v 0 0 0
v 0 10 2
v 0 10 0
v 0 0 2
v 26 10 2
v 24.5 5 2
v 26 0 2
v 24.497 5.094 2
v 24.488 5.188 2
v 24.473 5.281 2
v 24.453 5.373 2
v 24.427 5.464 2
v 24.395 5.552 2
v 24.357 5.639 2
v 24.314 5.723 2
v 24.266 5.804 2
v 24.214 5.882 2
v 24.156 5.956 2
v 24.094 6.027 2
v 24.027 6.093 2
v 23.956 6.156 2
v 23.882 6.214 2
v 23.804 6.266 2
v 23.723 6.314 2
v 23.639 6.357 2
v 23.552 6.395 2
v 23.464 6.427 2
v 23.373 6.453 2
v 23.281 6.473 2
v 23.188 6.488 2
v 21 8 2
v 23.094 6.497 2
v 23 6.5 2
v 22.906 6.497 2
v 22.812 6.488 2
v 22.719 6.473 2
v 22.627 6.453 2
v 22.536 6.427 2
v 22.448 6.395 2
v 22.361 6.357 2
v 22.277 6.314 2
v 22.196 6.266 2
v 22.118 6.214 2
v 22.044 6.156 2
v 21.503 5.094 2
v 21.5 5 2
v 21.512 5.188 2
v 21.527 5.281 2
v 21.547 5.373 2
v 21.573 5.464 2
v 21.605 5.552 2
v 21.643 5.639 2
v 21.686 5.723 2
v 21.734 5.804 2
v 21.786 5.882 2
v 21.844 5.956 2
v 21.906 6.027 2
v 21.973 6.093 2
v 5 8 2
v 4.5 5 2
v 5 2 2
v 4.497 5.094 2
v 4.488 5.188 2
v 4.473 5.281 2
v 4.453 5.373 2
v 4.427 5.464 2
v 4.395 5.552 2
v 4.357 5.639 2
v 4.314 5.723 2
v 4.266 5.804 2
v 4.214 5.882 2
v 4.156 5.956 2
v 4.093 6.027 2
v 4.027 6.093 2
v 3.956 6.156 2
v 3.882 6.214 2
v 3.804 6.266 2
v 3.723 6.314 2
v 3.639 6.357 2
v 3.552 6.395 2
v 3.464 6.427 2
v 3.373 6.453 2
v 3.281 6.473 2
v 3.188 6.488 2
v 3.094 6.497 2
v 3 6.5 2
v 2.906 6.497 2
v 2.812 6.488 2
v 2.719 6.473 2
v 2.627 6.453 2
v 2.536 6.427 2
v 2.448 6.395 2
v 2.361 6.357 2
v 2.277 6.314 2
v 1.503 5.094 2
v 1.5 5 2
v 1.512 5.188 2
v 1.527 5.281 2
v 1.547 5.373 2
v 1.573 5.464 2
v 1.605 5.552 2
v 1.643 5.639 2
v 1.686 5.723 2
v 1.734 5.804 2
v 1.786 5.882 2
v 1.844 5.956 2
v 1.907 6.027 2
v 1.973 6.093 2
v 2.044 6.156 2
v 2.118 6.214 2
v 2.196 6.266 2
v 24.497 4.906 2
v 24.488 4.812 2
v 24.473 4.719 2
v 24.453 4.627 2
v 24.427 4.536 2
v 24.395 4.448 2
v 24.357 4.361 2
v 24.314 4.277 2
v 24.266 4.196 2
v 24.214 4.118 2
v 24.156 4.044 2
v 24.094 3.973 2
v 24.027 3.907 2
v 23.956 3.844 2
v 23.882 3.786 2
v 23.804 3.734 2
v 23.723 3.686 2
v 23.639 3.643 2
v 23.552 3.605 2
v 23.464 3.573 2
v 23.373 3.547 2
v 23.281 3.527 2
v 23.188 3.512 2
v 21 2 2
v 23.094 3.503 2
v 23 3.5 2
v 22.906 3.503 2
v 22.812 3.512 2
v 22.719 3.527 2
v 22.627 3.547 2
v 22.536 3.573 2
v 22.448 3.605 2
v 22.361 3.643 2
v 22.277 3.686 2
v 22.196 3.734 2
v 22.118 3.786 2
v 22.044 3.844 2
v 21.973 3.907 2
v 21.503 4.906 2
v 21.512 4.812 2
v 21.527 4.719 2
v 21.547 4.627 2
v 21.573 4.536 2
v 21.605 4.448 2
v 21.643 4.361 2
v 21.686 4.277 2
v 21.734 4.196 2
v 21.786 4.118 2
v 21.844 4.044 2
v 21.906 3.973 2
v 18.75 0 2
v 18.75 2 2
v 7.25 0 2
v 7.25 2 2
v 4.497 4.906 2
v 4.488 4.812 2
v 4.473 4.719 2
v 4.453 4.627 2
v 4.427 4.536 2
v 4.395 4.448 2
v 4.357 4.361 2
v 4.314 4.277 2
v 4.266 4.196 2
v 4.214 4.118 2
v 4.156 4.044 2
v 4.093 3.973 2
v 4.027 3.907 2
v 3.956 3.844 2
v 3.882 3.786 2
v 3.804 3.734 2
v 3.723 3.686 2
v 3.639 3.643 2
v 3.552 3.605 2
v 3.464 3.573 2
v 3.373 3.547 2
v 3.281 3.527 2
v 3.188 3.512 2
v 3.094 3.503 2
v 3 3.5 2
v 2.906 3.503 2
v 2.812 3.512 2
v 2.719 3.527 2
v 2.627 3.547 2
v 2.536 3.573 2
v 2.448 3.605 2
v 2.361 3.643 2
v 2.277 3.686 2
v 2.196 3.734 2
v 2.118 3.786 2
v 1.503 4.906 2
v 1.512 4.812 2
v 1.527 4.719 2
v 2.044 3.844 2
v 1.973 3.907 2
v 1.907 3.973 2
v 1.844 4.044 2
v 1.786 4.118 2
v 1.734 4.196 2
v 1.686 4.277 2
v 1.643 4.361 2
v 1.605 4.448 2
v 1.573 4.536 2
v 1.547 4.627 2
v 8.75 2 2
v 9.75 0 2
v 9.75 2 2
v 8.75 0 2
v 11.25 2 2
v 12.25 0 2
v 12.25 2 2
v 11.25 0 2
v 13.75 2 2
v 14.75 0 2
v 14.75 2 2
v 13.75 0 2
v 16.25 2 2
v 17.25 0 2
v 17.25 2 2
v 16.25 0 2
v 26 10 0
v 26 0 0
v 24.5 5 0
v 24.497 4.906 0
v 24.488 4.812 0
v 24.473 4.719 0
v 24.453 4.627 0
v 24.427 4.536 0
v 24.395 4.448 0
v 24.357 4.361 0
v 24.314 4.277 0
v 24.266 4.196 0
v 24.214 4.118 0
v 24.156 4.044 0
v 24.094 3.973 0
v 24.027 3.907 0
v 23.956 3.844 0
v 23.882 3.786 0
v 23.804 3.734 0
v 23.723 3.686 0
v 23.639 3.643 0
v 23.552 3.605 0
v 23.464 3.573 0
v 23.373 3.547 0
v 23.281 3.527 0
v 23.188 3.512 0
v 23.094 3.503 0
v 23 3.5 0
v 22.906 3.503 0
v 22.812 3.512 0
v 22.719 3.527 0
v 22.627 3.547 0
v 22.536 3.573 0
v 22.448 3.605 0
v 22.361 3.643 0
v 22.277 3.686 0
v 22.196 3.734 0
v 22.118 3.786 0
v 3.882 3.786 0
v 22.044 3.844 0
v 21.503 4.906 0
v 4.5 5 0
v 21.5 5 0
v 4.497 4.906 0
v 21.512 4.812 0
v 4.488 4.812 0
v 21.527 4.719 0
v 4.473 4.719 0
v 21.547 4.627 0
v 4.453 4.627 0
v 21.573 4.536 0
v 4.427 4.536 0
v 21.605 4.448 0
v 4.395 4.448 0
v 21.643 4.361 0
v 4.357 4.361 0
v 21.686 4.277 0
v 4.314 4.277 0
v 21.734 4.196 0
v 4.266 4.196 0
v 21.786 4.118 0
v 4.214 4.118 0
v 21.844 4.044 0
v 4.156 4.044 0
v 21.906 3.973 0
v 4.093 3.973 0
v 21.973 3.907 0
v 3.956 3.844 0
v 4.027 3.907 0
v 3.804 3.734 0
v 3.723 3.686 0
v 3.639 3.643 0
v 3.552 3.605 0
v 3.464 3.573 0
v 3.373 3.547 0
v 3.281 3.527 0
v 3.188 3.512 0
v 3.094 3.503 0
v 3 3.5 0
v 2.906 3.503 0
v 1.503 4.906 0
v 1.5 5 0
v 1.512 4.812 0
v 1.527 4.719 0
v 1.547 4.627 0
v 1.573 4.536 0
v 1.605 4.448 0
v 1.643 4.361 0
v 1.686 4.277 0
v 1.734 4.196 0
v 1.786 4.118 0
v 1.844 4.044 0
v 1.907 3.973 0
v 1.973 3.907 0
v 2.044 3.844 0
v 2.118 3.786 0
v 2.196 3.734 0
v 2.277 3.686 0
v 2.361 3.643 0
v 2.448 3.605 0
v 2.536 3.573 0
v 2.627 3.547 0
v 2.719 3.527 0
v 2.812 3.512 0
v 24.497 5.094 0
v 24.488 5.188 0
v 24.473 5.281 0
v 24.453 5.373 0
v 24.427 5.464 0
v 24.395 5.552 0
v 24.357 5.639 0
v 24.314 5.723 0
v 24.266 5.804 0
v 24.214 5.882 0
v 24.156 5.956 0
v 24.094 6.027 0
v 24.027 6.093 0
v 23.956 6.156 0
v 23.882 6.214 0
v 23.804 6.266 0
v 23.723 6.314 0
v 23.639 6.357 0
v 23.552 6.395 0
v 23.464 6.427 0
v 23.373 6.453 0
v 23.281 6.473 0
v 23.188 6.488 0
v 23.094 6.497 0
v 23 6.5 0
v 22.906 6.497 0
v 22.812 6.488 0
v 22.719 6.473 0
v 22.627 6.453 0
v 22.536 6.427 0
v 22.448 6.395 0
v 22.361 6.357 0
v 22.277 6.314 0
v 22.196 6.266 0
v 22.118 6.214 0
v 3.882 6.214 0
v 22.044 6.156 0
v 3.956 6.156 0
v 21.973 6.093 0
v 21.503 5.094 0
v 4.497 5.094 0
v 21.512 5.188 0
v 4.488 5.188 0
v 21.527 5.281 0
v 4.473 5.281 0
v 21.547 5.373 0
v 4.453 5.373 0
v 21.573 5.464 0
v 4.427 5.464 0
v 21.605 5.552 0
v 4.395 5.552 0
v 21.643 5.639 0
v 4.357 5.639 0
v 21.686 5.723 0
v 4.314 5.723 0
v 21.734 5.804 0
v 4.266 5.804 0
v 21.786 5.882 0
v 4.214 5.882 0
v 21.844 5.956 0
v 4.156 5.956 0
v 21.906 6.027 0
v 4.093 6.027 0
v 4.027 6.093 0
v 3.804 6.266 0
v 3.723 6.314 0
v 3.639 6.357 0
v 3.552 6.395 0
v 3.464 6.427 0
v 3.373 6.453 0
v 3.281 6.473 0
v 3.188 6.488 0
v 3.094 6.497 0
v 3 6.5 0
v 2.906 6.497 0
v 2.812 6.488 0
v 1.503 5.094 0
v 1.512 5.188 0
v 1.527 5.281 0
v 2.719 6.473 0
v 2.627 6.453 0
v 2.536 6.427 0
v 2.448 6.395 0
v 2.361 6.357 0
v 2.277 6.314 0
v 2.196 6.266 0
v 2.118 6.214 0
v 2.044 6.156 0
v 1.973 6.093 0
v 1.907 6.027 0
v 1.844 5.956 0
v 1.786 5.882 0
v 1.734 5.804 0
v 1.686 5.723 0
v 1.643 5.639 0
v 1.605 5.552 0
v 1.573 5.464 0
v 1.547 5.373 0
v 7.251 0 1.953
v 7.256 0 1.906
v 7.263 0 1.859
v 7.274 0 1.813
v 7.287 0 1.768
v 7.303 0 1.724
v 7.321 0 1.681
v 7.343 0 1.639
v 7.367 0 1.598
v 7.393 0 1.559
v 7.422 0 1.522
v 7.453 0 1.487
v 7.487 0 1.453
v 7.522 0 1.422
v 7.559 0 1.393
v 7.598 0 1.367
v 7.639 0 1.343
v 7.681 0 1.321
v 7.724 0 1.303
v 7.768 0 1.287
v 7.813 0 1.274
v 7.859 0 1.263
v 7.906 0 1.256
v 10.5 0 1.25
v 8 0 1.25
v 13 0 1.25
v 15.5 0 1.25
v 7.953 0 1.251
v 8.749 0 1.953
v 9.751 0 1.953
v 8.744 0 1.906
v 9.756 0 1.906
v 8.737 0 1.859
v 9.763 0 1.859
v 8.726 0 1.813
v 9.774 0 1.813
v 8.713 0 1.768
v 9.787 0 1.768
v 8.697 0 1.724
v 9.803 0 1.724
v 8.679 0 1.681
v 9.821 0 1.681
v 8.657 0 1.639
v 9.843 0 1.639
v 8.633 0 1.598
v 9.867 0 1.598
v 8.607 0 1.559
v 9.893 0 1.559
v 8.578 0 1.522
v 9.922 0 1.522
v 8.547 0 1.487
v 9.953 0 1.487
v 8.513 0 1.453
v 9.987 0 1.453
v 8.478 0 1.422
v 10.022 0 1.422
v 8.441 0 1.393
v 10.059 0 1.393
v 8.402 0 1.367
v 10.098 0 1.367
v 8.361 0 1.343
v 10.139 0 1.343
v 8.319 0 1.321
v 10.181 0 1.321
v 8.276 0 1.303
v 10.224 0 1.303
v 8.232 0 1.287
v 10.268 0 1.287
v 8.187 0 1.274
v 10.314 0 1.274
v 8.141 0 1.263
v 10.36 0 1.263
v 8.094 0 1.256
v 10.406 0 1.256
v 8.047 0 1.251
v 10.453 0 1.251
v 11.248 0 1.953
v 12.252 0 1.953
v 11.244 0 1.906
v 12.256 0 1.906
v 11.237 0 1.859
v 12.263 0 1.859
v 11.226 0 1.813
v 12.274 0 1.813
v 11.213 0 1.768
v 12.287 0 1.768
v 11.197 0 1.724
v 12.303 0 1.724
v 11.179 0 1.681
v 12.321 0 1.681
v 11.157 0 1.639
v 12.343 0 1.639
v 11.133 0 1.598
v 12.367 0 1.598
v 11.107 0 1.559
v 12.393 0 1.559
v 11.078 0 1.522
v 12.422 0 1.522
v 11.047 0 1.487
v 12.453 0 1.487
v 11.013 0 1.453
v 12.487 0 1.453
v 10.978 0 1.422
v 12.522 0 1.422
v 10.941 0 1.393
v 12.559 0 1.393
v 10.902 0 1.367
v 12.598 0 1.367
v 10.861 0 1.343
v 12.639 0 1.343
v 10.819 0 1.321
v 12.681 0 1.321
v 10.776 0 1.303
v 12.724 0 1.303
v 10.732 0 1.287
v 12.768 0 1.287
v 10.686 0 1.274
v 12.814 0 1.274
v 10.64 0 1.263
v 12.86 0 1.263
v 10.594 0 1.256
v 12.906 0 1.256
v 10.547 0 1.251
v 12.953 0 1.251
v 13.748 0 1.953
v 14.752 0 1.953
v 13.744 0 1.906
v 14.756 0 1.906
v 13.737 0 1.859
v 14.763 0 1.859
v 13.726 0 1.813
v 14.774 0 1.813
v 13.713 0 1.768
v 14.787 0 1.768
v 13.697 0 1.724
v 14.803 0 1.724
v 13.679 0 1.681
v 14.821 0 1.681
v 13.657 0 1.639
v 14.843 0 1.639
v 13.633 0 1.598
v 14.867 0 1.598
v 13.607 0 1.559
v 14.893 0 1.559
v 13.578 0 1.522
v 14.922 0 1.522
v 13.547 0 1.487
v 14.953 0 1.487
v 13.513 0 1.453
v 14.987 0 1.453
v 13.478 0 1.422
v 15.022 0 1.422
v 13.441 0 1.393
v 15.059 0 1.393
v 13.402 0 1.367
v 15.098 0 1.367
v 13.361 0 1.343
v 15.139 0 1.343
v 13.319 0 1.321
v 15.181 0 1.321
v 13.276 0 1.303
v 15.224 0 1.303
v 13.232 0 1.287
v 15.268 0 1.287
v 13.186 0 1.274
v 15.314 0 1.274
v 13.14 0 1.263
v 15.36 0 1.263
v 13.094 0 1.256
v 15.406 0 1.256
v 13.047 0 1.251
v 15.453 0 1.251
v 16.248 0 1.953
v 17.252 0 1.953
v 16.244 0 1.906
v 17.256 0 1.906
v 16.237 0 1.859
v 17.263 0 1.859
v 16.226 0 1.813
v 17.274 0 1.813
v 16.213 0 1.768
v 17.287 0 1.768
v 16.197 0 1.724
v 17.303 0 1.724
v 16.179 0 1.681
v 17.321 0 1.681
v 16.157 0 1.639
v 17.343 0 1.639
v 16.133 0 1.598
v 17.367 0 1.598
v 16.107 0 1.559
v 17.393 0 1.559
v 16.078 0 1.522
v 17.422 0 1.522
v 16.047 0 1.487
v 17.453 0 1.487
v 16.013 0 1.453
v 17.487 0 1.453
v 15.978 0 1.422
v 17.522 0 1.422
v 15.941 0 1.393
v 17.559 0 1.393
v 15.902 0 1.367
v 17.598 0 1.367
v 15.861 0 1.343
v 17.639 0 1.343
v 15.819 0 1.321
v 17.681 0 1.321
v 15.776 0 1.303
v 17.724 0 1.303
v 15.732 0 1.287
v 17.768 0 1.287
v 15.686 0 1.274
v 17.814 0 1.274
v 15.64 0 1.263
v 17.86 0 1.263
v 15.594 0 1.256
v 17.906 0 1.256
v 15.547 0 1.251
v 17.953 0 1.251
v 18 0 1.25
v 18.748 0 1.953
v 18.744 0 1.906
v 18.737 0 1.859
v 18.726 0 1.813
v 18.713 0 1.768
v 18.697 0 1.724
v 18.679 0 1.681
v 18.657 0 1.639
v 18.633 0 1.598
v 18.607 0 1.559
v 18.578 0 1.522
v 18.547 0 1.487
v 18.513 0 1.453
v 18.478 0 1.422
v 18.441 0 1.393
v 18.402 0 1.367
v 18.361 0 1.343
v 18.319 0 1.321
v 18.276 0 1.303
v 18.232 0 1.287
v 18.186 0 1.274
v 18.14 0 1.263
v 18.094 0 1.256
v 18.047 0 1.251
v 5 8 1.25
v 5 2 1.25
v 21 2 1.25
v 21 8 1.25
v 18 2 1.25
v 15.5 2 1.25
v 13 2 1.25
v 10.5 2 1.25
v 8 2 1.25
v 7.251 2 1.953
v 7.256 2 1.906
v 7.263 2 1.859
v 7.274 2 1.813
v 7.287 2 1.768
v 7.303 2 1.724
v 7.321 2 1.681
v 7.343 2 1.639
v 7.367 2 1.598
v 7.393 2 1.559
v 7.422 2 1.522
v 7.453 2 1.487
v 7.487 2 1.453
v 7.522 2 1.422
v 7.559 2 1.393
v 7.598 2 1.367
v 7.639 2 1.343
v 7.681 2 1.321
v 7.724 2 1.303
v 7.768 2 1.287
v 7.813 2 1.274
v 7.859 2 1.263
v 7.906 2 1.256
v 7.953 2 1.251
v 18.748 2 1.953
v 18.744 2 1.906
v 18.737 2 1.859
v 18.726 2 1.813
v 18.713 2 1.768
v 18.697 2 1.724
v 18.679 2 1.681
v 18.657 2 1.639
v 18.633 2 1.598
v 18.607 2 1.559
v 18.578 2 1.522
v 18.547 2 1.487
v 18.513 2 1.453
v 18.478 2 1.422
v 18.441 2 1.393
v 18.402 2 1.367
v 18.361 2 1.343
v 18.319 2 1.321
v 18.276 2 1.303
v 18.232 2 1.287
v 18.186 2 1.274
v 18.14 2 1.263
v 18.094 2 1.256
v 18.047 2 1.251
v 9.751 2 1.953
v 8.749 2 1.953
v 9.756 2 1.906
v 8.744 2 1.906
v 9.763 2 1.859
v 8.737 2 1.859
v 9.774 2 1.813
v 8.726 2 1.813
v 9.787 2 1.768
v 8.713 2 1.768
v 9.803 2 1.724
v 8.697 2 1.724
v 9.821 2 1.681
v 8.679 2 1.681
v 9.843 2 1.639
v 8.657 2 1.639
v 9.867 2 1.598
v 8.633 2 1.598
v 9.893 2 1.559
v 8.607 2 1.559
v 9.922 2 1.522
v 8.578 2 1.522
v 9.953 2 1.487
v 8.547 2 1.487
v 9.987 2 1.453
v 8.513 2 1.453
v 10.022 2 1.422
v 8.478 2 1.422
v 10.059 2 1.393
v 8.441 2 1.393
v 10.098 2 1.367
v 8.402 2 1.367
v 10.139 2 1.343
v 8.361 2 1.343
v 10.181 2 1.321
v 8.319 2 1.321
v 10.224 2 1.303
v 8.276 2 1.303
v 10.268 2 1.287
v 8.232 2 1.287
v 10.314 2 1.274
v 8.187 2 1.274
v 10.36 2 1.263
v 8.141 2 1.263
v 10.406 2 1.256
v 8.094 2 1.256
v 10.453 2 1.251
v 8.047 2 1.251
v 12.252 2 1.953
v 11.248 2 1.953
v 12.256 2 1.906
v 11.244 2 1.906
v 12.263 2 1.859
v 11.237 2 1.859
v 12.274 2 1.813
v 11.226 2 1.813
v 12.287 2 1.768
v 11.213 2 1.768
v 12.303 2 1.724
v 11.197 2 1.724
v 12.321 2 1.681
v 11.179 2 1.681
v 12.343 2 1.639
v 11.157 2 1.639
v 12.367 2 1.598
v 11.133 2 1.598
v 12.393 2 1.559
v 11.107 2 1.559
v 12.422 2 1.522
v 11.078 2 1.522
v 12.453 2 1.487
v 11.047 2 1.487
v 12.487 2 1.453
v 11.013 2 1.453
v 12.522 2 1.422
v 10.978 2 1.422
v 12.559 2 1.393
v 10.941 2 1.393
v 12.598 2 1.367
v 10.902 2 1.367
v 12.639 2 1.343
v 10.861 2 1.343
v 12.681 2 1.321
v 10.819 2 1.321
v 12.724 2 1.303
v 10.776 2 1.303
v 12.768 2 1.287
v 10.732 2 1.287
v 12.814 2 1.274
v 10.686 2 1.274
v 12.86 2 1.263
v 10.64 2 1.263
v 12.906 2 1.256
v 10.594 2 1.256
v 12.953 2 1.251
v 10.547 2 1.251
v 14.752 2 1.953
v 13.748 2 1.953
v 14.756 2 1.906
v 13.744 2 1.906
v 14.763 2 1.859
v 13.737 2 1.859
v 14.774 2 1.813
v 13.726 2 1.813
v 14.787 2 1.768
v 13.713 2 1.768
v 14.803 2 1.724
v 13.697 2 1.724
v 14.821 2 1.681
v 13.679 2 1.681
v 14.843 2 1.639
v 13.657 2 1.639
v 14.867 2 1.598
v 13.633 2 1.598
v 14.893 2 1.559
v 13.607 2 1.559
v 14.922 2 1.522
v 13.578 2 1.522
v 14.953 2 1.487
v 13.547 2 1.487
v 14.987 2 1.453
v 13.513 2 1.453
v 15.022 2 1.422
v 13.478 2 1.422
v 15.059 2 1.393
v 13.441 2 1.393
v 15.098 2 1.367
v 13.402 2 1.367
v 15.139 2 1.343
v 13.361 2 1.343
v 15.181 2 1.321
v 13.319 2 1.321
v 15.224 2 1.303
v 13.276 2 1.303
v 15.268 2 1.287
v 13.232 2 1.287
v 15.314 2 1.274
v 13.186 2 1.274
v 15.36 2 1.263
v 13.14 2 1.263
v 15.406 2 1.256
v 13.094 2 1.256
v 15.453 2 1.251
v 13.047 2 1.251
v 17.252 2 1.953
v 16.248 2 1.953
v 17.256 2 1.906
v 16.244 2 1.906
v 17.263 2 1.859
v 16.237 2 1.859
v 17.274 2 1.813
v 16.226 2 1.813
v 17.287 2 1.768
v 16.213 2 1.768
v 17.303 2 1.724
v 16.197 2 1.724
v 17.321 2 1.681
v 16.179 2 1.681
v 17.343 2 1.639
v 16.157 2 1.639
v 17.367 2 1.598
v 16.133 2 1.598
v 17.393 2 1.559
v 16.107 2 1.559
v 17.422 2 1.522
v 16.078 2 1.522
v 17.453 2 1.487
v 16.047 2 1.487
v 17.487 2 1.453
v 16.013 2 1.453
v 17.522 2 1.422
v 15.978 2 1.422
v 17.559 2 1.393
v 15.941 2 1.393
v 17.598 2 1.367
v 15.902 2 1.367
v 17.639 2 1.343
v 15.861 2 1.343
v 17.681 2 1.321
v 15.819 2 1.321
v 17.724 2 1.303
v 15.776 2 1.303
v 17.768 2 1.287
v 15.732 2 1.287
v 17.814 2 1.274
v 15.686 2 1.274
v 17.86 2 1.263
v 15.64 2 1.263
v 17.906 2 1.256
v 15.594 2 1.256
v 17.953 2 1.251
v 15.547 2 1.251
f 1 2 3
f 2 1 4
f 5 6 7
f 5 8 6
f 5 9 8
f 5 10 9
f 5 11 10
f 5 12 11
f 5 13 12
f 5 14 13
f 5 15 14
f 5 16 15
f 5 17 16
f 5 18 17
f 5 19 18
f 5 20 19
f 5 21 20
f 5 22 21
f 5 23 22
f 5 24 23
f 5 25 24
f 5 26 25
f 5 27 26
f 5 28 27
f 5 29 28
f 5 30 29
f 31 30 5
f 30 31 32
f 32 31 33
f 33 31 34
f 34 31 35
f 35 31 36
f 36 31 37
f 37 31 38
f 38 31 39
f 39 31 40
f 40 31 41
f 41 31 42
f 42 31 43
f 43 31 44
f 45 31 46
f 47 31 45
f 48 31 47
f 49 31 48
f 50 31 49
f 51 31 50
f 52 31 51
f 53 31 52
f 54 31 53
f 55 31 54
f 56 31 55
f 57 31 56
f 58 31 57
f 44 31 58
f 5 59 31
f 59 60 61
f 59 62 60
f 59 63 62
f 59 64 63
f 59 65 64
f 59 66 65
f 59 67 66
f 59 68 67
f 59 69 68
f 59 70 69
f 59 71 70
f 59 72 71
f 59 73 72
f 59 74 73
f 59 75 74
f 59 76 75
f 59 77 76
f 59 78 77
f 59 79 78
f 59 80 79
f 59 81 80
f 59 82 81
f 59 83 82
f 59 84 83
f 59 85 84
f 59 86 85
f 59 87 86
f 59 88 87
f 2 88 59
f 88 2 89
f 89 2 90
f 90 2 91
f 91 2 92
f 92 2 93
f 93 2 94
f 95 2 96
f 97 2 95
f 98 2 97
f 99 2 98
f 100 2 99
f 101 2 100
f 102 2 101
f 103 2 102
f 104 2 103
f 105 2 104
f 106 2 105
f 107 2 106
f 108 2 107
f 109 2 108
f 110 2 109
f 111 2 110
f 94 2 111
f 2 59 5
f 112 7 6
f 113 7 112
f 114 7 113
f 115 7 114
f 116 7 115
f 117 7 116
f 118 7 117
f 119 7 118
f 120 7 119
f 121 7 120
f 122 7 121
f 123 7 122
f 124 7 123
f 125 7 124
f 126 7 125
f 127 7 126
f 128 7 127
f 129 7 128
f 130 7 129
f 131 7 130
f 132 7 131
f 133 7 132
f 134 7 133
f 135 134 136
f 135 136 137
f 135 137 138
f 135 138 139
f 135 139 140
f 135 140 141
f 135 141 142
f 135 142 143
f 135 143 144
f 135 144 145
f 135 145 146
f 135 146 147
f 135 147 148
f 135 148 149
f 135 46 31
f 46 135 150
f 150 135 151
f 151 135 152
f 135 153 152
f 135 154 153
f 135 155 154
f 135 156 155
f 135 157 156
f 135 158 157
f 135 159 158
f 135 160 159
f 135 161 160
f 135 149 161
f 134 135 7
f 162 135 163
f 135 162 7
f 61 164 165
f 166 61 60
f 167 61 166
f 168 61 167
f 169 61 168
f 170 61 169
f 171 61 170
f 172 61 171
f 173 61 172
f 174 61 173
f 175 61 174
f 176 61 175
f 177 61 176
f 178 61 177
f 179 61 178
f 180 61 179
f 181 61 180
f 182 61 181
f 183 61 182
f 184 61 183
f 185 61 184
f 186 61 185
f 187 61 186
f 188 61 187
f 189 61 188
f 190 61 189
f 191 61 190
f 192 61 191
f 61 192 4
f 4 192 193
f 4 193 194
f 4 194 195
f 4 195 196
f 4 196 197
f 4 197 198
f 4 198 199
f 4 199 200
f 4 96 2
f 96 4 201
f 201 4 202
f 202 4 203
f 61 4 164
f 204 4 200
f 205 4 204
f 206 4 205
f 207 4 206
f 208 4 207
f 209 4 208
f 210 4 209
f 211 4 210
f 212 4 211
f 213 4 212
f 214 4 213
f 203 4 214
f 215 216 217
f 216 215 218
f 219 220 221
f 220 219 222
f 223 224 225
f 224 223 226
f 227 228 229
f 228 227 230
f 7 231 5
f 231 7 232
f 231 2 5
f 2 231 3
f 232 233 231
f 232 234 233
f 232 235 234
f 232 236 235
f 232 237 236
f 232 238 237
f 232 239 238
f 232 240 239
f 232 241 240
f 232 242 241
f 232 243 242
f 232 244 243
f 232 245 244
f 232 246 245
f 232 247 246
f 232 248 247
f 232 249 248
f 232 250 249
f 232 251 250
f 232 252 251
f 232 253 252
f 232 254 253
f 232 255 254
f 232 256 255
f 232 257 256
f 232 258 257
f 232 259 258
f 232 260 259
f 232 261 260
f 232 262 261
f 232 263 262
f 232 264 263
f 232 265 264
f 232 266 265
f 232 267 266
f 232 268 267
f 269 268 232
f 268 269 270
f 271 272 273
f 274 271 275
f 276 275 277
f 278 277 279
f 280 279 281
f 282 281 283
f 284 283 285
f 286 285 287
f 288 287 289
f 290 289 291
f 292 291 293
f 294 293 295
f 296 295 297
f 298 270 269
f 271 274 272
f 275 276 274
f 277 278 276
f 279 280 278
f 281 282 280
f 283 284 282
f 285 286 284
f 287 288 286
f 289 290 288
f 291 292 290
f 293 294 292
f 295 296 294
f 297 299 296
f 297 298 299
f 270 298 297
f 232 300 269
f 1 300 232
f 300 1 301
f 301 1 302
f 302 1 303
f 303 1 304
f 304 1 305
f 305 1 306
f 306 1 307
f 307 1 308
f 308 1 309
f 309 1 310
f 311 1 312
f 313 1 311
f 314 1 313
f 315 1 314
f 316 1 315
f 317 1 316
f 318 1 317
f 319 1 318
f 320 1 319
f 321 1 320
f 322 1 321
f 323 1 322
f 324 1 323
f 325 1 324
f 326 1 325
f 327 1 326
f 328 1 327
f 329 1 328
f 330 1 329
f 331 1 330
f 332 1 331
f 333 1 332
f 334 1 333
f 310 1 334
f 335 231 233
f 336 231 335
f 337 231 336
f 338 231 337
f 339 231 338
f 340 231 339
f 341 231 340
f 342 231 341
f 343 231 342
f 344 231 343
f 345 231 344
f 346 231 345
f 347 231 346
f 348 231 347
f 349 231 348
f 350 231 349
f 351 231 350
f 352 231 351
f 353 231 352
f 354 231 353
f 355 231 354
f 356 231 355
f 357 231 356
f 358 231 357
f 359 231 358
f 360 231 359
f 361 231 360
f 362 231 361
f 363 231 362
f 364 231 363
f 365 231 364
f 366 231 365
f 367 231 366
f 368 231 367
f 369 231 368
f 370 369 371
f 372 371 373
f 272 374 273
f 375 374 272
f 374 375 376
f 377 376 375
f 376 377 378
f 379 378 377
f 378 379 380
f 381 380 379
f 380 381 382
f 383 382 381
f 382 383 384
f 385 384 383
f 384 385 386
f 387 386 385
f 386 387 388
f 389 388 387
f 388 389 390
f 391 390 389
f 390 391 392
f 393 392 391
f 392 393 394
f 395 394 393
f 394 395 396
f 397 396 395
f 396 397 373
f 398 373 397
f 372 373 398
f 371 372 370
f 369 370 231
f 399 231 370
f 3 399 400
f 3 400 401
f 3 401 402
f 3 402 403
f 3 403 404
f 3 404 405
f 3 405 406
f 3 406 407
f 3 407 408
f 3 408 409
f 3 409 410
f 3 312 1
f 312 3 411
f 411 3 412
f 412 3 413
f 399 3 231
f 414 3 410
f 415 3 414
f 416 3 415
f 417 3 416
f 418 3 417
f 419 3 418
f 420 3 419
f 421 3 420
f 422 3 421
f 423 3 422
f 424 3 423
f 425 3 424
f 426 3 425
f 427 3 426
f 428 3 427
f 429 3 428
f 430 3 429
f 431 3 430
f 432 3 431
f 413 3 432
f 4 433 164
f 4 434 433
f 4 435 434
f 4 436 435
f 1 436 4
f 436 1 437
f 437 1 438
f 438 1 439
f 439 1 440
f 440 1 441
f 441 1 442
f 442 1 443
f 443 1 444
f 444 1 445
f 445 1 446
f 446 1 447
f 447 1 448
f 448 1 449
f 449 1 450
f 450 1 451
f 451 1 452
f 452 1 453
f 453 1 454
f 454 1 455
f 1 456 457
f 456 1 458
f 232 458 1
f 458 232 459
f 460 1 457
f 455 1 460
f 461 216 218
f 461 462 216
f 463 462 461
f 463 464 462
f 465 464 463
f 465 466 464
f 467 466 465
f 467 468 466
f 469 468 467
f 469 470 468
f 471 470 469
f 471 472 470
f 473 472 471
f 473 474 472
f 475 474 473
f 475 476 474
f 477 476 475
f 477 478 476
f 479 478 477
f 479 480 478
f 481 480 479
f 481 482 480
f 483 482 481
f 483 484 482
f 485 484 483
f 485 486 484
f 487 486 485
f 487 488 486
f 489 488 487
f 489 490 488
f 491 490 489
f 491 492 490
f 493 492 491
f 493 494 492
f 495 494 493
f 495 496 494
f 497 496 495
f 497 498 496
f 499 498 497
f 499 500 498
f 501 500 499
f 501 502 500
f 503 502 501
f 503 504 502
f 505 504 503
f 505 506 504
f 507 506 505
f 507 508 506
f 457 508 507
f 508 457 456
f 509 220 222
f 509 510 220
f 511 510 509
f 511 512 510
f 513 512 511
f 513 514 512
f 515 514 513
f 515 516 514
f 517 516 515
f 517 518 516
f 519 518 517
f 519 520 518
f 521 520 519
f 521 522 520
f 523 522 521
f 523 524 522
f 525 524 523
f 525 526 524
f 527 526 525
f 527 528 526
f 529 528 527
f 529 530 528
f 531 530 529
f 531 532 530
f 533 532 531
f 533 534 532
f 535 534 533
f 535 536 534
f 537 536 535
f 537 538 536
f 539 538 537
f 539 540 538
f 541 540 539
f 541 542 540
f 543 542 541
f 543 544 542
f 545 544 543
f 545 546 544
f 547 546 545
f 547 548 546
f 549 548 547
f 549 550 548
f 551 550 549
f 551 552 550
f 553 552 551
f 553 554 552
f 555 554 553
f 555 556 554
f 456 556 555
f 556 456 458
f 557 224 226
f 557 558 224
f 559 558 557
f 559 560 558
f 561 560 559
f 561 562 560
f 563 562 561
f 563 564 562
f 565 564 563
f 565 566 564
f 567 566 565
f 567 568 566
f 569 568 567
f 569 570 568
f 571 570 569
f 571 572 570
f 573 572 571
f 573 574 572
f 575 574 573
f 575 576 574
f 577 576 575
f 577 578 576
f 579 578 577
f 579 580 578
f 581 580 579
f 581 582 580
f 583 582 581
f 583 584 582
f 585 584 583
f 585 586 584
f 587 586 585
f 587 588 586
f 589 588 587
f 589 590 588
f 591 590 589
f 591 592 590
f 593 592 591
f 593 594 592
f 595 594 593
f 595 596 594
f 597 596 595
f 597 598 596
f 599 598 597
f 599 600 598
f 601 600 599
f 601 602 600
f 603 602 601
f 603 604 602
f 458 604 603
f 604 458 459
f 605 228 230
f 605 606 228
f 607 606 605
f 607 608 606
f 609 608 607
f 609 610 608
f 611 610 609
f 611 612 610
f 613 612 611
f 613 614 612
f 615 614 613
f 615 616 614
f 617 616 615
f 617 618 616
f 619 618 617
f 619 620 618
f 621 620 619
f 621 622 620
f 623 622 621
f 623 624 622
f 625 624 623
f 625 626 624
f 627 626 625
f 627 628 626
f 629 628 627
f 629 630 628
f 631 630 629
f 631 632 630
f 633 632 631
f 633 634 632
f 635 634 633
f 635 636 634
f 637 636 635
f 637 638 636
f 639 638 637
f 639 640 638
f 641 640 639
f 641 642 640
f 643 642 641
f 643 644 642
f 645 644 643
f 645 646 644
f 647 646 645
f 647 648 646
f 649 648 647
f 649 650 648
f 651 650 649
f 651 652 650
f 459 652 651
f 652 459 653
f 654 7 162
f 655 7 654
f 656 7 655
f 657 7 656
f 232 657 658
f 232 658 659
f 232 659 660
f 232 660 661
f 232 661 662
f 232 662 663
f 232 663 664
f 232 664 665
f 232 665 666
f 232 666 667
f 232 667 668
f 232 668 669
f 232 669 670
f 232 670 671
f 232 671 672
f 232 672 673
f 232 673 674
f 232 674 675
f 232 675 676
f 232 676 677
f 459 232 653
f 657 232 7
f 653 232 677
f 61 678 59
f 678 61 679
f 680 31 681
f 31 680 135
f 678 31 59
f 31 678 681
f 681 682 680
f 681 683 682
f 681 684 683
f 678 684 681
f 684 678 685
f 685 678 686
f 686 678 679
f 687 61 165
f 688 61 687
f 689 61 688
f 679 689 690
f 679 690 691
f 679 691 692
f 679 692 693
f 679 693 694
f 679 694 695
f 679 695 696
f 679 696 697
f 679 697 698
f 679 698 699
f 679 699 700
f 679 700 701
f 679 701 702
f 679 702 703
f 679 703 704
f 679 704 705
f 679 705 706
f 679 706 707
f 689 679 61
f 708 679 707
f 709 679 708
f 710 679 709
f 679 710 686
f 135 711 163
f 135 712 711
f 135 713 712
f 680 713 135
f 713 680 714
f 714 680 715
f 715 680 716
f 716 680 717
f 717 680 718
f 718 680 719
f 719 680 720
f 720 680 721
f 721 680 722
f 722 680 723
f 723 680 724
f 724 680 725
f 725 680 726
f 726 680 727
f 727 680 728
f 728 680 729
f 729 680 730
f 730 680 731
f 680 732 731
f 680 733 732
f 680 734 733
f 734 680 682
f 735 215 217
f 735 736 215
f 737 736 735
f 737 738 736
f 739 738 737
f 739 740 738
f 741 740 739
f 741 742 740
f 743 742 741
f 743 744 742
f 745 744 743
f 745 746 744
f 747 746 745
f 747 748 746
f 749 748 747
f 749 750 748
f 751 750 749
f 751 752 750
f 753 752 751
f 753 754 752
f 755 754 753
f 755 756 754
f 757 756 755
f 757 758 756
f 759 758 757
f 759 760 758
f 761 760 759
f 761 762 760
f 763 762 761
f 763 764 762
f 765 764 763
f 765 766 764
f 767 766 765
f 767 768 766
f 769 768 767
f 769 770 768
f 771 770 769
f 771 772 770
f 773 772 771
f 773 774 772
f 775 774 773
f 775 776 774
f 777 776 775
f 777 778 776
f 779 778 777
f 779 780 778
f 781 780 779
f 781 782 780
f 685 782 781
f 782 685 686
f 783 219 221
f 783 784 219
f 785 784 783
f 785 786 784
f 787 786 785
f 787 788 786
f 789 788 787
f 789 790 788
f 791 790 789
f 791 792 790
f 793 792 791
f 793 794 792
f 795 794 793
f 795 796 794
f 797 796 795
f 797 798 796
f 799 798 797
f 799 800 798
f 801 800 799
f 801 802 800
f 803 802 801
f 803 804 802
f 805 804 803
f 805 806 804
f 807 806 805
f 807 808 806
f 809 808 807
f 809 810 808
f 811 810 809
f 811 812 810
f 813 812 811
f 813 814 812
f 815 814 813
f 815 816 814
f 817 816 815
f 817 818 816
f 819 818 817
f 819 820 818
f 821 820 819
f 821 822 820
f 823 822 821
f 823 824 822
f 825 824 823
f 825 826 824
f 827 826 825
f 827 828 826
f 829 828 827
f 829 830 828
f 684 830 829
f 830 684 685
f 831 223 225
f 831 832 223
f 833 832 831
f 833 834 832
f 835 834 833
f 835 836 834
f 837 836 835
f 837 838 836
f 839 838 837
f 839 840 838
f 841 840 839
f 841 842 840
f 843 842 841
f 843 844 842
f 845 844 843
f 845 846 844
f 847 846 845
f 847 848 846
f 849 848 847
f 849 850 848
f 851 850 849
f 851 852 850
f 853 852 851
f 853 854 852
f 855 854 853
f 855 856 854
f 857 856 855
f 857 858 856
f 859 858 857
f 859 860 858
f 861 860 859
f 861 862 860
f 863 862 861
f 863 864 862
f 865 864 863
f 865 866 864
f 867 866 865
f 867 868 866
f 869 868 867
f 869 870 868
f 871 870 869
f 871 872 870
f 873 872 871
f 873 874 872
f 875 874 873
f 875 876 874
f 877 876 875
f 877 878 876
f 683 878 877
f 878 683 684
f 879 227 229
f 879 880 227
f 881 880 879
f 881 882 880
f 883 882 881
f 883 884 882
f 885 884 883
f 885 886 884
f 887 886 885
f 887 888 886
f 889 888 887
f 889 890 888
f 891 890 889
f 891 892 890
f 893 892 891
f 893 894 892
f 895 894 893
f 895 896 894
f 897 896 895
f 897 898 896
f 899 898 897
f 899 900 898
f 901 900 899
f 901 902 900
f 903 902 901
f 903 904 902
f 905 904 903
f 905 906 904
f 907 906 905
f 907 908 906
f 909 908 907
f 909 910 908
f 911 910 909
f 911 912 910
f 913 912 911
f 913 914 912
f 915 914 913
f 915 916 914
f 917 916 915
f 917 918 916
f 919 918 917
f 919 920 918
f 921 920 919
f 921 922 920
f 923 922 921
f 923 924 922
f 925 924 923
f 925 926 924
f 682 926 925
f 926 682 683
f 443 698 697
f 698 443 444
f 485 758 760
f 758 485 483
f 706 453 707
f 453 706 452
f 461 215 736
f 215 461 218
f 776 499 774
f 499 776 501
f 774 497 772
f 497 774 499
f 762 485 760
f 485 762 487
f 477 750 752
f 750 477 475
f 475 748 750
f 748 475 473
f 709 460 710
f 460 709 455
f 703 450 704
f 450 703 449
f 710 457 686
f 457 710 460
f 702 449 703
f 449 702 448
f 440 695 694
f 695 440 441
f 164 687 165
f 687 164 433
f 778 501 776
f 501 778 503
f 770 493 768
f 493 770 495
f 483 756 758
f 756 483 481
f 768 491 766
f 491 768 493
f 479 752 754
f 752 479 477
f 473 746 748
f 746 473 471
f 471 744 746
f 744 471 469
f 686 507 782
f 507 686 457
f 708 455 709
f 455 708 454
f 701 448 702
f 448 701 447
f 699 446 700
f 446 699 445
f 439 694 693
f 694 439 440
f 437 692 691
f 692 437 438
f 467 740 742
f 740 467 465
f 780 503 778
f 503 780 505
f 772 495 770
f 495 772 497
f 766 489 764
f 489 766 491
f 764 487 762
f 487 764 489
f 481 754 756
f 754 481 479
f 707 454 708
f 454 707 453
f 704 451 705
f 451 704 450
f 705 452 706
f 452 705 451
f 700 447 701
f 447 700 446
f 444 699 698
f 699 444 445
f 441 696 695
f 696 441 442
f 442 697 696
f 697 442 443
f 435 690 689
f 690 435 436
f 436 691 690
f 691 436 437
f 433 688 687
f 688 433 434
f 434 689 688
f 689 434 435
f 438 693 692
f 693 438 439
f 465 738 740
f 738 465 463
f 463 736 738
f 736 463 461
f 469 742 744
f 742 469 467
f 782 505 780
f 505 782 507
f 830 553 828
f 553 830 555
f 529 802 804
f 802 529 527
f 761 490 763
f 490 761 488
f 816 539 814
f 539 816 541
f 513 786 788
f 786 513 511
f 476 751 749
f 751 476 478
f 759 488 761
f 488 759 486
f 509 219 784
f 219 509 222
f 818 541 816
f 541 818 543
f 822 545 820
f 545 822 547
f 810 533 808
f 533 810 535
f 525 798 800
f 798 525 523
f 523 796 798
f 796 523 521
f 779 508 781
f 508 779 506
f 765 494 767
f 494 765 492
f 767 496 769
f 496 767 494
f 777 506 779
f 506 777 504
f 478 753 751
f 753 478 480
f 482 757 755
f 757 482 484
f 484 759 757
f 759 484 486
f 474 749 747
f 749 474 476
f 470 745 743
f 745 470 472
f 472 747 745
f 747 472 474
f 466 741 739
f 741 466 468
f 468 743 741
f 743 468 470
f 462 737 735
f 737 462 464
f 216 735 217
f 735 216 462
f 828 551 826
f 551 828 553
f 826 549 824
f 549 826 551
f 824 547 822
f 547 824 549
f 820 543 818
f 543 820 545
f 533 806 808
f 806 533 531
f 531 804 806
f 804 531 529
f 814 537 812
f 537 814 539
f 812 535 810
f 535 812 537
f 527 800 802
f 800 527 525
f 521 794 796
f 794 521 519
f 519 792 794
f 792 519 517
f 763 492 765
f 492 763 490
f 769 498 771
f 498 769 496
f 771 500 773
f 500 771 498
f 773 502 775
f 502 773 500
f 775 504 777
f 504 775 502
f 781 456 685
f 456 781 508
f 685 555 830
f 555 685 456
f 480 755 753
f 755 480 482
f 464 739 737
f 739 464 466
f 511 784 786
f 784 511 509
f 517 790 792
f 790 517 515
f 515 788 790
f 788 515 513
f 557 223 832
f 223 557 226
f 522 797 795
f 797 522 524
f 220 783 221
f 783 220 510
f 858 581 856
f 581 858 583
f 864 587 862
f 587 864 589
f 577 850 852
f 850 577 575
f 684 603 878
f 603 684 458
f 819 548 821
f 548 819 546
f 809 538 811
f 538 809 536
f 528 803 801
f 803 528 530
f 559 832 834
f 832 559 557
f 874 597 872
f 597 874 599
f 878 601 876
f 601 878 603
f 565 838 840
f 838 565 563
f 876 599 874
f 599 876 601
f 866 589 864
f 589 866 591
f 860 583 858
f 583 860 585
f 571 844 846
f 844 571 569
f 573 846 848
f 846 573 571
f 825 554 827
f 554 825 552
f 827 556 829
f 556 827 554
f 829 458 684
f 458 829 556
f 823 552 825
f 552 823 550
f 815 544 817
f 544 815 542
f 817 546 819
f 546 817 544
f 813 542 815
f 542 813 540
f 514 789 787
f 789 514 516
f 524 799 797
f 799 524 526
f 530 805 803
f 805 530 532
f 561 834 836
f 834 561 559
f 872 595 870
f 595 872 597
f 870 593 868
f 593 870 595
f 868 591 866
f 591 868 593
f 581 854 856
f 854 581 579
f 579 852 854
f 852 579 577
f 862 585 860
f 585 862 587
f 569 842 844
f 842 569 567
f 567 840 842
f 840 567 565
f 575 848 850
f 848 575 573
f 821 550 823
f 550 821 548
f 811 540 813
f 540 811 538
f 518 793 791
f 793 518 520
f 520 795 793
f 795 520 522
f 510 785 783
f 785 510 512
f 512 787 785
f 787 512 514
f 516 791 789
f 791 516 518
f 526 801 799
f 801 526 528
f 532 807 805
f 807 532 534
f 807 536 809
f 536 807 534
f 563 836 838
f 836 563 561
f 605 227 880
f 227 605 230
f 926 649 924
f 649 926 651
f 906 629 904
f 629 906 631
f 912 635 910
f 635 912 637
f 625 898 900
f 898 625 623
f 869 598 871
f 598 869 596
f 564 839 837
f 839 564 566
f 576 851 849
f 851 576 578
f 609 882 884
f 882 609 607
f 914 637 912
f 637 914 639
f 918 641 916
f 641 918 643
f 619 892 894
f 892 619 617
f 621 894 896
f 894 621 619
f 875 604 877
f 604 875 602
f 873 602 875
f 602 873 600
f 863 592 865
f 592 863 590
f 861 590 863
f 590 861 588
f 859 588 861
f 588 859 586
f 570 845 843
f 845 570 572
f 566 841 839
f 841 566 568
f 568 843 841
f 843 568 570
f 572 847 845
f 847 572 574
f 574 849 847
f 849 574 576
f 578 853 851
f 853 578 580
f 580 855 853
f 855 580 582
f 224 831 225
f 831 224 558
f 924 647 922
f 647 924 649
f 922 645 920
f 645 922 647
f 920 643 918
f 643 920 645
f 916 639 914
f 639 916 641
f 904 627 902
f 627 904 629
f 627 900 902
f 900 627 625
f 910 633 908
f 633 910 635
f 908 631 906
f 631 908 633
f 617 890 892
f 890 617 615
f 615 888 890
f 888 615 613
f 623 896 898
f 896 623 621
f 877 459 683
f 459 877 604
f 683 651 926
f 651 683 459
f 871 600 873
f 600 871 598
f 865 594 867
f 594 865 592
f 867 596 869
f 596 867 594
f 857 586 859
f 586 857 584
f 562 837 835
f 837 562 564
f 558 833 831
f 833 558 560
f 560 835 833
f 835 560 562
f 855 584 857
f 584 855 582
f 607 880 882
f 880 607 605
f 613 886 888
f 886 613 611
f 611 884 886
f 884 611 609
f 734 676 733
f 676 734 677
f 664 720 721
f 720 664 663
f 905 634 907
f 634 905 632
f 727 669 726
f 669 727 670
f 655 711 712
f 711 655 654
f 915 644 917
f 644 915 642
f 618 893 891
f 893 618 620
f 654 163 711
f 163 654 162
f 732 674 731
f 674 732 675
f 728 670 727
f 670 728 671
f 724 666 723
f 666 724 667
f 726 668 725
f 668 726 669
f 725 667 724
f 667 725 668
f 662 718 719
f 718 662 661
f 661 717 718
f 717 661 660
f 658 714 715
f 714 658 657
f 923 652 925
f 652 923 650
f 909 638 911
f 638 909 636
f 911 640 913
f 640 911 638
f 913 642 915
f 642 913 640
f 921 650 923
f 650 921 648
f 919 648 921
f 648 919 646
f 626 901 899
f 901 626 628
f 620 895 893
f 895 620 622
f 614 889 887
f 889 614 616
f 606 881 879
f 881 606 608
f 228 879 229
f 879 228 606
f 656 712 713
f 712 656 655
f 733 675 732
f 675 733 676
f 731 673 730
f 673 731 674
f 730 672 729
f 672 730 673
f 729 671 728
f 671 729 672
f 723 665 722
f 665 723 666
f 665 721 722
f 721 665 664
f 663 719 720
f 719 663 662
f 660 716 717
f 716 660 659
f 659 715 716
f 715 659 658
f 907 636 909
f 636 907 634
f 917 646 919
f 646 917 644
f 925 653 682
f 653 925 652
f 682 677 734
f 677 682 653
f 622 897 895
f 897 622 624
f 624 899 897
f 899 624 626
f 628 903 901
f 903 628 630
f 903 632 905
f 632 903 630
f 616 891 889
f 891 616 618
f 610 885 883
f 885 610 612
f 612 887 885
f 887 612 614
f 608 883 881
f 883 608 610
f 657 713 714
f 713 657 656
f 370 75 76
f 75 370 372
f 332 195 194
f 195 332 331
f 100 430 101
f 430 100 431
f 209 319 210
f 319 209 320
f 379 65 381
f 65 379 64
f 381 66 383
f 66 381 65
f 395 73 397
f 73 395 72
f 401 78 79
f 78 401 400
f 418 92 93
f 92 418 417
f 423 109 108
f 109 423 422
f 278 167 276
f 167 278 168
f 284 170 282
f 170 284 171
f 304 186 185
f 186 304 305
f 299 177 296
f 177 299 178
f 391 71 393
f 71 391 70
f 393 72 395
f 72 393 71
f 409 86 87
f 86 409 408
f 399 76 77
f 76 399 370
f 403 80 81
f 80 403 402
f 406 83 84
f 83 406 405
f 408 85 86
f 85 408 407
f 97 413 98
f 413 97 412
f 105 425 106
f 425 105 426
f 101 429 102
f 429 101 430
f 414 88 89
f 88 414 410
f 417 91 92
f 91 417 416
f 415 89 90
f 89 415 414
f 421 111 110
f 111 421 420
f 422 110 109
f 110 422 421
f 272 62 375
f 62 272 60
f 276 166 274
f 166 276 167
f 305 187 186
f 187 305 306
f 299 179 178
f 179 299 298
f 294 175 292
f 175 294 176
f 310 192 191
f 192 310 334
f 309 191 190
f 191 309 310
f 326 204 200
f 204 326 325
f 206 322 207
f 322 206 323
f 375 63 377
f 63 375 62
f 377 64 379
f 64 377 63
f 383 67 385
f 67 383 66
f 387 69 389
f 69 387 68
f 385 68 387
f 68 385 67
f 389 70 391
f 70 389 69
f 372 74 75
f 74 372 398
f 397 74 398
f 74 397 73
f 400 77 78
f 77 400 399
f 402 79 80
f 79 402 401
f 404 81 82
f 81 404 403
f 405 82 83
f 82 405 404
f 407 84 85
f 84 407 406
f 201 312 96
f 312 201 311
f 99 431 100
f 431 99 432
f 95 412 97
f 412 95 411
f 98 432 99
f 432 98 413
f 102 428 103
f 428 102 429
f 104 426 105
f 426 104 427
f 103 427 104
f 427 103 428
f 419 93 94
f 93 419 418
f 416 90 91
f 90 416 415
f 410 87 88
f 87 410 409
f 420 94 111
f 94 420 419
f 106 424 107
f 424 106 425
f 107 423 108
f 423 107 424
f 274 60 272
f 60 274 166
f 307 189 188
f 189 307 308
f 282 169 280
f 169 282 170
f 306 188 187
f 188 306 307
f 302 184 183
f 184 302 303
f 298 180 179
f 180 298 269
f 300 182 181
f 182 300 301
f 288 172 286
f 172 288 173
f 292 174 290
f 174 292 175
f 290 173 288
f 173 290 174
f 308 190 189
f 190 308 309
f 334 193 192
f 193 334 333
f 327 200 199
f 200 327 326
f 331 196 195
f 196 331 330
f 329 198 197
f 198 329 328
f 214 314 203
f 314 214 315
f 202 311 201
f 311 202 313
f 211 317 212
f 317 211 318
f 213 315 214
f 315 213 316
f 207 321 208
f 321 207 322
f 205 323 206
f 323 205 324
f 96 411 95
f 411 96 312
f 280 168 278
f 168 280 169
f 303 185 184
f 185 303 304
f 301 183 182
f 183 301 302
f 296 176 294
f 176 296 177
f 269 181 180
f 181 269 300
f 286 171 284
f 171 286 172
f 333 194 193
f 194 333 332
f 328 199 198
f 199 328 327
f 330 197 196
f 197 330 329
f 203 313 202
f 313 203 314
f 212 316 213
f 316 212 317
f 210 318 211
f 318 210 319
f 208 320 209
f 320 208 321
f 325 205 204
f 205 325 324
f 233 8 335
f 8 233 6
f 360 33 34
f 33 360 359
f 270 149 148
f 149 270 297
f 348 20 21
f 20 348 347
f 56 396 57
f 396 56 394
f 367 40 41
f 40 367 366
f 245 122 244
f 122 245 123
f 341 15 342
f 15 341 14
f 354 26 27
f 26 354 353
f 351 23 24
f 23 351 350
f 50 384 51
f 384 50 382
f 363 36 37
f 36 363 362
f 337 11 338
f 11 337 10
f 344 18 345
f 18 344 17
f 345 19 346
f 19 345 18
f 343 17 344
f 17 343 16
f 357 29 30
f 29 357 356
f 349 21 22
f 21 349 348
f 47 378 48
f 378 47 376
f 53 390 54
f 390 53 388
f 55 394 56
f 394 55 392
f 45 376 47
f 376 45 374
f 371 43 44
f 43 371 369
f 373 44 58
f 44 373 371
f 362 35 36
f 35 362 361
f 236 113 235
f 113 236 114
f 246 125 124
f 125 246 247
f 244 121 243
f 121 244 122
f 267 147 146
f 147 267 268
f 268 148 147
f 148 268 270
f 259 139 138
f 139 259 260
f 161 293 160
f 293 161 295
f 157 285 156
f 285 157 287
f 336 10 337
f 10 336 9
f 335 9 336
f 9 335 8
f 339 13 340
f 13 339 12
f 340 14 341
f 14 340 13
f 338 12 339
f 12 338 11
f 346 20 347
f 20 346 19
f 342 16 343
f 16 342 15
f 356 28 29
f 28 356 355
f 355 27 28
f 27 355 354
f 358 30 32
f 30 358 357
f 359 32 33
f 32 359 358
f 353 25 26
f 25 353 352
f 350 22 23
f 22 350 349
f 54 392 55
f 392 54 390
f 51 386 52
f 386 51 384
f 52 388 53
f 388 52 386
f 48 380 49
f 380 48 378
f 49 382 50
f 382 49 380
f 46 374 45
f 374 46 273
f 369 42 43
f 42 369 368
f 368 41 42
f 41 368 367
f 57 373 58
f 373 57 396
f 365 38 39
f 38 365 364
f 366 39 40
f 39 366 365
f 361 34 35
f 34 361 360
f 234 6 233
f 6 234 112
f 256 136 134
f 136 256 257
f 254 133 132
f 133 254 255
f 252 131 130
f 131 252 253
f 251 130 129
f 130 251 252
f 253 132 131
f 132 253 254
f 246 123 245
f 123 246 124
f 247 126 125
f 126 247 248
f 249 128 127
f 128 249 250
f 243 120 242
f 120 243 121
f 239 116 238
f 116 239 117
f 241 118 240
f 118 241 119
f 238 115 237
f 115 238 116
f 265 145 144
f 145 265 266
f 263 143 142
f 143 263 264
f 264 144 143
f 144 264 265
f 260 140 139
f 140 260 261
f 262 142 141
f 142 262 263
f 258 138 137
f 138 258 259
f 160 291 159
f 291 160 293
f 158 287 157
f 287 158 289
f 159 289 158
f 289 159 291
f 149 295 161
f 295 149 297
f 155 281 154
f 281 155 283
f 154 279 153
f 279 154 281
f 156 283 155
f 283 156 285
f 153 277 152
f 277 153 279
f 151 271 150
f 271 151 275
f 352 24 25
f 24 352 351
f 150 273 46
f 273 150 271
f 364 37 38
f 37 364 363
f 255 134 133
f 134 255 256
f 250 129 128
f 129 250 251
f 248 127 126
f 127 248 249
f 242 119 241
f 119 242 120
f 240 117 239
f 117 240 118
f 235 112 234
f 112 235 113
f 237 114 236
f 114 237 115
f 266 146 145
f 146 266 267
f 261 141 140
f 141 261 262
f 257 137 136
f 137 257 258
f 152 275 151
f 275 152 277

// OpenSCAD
// file: ../prog_protec.scad
/*
Title:          prog_protect.scad
Description:    Protection for Programing Port
Authors:        Pau Roura (@proura)
Date:           20180816
Version:        0.1
Notes:
*/

include <config.scad>;

module port_prot(d_screw_h=3){
    difference() {
        cube([26,10,2]);
        translate([5,2,1.25]) cube([16,6,3]);

        translate([8,5,2])rotate([90,0,0])cylinder(8,0.75,0.75);
        translate([10.5,5,2])rotate([90,0,0])cylinder(8,0.75,0.75);
        translate([13,5,2])rotate([90,0,0])cylinder(8,0.75,0.75);
        translate([15.5,5,2])rotate([90,0,0])cylinder(8,0.75,0.75);
        translate([18,5,2])rotate([90,0,0])cylinder(8,0.75,0.75);

        translate([3,5,-2])cylinder(8,d_screw_h/2,d_screw_h/2);
        translate([23,5,-2])cylinder(8,d_screw_h/2,d_screw_h/2);
    }
}

translate([0,0,0])  rotate([0,0,0])     port_prot(d_screw_h);
translate([26,0,6]) rotate([0,180,0])   port_prot(d_screw_h);
// file: ../config.scad
/*
Title:          config.scad for R2B2 Nano
Description:    All configuration parameters for R2B2-Nano
Authors:        Pau Roura (@proura)
Date:           20180721
Version:        0.2
Notes:
*/

//General Config
$fn = 100;
w_walls=2.7;                //width of the walls
d_screw_h=3;                //screw thread hole diameter
d_screw_head=6.5;           //screw head diameter
d_screw_p=d_screw_h+0.4;    //screw pass trhougth diameter
h_support=8;                //screw support height
w_support=8;                //screw support width
w_chassis=70;               //chassis width
d_chassis=100;              //chassis depth
h_battery=12;               //battery height
h_control=12;               //electronics height

//motor
d_motor=7.6;        //motor diameter
d_motor_shaft=1.5;  //motor shaft diameter
h_motor=16.60;      //motor height

//motor_housing
w_walls_m=1;                           //width of the walls
gap_housing=3;                         //extra height of the encapsulation
h_motor_body=h_motor+(gap_housing*2);  //motor housing height

//Thrusters
d_motor_t=d_motor+(w_walls_m*2);    //motor support diameter
h_motor_sup=8;                      //motor support height
o_motor=0;                          //motor support distance from ground
d_thruster=34;                      //thruster diameter
h_thruster=30;                      //thruster height

//module propeller
h_propeller=10;     //propeller height
o_propeller=1;      //offset of the blades to shaft
n_blade=3;          //number of blades
s_blade=20;         //angle separation between blades
w_blade=4;          //width of the blades
rounded="empty";    //shape of the blades [round | trian | empty]
d_motor_grub=2;     //motor grub screw diameter
// main file
/*
Title:          prog_protec.scad for generate STL file
Description:    Protection for Programing Port
Authors:        Pau Roura (@proura)
Date:           20180816
Version:        0.1
Notes:
*/

include <../config.scad>;
use <../prog_protec.scad>;
$fn = 100;

port_prot(d_screw_h);
